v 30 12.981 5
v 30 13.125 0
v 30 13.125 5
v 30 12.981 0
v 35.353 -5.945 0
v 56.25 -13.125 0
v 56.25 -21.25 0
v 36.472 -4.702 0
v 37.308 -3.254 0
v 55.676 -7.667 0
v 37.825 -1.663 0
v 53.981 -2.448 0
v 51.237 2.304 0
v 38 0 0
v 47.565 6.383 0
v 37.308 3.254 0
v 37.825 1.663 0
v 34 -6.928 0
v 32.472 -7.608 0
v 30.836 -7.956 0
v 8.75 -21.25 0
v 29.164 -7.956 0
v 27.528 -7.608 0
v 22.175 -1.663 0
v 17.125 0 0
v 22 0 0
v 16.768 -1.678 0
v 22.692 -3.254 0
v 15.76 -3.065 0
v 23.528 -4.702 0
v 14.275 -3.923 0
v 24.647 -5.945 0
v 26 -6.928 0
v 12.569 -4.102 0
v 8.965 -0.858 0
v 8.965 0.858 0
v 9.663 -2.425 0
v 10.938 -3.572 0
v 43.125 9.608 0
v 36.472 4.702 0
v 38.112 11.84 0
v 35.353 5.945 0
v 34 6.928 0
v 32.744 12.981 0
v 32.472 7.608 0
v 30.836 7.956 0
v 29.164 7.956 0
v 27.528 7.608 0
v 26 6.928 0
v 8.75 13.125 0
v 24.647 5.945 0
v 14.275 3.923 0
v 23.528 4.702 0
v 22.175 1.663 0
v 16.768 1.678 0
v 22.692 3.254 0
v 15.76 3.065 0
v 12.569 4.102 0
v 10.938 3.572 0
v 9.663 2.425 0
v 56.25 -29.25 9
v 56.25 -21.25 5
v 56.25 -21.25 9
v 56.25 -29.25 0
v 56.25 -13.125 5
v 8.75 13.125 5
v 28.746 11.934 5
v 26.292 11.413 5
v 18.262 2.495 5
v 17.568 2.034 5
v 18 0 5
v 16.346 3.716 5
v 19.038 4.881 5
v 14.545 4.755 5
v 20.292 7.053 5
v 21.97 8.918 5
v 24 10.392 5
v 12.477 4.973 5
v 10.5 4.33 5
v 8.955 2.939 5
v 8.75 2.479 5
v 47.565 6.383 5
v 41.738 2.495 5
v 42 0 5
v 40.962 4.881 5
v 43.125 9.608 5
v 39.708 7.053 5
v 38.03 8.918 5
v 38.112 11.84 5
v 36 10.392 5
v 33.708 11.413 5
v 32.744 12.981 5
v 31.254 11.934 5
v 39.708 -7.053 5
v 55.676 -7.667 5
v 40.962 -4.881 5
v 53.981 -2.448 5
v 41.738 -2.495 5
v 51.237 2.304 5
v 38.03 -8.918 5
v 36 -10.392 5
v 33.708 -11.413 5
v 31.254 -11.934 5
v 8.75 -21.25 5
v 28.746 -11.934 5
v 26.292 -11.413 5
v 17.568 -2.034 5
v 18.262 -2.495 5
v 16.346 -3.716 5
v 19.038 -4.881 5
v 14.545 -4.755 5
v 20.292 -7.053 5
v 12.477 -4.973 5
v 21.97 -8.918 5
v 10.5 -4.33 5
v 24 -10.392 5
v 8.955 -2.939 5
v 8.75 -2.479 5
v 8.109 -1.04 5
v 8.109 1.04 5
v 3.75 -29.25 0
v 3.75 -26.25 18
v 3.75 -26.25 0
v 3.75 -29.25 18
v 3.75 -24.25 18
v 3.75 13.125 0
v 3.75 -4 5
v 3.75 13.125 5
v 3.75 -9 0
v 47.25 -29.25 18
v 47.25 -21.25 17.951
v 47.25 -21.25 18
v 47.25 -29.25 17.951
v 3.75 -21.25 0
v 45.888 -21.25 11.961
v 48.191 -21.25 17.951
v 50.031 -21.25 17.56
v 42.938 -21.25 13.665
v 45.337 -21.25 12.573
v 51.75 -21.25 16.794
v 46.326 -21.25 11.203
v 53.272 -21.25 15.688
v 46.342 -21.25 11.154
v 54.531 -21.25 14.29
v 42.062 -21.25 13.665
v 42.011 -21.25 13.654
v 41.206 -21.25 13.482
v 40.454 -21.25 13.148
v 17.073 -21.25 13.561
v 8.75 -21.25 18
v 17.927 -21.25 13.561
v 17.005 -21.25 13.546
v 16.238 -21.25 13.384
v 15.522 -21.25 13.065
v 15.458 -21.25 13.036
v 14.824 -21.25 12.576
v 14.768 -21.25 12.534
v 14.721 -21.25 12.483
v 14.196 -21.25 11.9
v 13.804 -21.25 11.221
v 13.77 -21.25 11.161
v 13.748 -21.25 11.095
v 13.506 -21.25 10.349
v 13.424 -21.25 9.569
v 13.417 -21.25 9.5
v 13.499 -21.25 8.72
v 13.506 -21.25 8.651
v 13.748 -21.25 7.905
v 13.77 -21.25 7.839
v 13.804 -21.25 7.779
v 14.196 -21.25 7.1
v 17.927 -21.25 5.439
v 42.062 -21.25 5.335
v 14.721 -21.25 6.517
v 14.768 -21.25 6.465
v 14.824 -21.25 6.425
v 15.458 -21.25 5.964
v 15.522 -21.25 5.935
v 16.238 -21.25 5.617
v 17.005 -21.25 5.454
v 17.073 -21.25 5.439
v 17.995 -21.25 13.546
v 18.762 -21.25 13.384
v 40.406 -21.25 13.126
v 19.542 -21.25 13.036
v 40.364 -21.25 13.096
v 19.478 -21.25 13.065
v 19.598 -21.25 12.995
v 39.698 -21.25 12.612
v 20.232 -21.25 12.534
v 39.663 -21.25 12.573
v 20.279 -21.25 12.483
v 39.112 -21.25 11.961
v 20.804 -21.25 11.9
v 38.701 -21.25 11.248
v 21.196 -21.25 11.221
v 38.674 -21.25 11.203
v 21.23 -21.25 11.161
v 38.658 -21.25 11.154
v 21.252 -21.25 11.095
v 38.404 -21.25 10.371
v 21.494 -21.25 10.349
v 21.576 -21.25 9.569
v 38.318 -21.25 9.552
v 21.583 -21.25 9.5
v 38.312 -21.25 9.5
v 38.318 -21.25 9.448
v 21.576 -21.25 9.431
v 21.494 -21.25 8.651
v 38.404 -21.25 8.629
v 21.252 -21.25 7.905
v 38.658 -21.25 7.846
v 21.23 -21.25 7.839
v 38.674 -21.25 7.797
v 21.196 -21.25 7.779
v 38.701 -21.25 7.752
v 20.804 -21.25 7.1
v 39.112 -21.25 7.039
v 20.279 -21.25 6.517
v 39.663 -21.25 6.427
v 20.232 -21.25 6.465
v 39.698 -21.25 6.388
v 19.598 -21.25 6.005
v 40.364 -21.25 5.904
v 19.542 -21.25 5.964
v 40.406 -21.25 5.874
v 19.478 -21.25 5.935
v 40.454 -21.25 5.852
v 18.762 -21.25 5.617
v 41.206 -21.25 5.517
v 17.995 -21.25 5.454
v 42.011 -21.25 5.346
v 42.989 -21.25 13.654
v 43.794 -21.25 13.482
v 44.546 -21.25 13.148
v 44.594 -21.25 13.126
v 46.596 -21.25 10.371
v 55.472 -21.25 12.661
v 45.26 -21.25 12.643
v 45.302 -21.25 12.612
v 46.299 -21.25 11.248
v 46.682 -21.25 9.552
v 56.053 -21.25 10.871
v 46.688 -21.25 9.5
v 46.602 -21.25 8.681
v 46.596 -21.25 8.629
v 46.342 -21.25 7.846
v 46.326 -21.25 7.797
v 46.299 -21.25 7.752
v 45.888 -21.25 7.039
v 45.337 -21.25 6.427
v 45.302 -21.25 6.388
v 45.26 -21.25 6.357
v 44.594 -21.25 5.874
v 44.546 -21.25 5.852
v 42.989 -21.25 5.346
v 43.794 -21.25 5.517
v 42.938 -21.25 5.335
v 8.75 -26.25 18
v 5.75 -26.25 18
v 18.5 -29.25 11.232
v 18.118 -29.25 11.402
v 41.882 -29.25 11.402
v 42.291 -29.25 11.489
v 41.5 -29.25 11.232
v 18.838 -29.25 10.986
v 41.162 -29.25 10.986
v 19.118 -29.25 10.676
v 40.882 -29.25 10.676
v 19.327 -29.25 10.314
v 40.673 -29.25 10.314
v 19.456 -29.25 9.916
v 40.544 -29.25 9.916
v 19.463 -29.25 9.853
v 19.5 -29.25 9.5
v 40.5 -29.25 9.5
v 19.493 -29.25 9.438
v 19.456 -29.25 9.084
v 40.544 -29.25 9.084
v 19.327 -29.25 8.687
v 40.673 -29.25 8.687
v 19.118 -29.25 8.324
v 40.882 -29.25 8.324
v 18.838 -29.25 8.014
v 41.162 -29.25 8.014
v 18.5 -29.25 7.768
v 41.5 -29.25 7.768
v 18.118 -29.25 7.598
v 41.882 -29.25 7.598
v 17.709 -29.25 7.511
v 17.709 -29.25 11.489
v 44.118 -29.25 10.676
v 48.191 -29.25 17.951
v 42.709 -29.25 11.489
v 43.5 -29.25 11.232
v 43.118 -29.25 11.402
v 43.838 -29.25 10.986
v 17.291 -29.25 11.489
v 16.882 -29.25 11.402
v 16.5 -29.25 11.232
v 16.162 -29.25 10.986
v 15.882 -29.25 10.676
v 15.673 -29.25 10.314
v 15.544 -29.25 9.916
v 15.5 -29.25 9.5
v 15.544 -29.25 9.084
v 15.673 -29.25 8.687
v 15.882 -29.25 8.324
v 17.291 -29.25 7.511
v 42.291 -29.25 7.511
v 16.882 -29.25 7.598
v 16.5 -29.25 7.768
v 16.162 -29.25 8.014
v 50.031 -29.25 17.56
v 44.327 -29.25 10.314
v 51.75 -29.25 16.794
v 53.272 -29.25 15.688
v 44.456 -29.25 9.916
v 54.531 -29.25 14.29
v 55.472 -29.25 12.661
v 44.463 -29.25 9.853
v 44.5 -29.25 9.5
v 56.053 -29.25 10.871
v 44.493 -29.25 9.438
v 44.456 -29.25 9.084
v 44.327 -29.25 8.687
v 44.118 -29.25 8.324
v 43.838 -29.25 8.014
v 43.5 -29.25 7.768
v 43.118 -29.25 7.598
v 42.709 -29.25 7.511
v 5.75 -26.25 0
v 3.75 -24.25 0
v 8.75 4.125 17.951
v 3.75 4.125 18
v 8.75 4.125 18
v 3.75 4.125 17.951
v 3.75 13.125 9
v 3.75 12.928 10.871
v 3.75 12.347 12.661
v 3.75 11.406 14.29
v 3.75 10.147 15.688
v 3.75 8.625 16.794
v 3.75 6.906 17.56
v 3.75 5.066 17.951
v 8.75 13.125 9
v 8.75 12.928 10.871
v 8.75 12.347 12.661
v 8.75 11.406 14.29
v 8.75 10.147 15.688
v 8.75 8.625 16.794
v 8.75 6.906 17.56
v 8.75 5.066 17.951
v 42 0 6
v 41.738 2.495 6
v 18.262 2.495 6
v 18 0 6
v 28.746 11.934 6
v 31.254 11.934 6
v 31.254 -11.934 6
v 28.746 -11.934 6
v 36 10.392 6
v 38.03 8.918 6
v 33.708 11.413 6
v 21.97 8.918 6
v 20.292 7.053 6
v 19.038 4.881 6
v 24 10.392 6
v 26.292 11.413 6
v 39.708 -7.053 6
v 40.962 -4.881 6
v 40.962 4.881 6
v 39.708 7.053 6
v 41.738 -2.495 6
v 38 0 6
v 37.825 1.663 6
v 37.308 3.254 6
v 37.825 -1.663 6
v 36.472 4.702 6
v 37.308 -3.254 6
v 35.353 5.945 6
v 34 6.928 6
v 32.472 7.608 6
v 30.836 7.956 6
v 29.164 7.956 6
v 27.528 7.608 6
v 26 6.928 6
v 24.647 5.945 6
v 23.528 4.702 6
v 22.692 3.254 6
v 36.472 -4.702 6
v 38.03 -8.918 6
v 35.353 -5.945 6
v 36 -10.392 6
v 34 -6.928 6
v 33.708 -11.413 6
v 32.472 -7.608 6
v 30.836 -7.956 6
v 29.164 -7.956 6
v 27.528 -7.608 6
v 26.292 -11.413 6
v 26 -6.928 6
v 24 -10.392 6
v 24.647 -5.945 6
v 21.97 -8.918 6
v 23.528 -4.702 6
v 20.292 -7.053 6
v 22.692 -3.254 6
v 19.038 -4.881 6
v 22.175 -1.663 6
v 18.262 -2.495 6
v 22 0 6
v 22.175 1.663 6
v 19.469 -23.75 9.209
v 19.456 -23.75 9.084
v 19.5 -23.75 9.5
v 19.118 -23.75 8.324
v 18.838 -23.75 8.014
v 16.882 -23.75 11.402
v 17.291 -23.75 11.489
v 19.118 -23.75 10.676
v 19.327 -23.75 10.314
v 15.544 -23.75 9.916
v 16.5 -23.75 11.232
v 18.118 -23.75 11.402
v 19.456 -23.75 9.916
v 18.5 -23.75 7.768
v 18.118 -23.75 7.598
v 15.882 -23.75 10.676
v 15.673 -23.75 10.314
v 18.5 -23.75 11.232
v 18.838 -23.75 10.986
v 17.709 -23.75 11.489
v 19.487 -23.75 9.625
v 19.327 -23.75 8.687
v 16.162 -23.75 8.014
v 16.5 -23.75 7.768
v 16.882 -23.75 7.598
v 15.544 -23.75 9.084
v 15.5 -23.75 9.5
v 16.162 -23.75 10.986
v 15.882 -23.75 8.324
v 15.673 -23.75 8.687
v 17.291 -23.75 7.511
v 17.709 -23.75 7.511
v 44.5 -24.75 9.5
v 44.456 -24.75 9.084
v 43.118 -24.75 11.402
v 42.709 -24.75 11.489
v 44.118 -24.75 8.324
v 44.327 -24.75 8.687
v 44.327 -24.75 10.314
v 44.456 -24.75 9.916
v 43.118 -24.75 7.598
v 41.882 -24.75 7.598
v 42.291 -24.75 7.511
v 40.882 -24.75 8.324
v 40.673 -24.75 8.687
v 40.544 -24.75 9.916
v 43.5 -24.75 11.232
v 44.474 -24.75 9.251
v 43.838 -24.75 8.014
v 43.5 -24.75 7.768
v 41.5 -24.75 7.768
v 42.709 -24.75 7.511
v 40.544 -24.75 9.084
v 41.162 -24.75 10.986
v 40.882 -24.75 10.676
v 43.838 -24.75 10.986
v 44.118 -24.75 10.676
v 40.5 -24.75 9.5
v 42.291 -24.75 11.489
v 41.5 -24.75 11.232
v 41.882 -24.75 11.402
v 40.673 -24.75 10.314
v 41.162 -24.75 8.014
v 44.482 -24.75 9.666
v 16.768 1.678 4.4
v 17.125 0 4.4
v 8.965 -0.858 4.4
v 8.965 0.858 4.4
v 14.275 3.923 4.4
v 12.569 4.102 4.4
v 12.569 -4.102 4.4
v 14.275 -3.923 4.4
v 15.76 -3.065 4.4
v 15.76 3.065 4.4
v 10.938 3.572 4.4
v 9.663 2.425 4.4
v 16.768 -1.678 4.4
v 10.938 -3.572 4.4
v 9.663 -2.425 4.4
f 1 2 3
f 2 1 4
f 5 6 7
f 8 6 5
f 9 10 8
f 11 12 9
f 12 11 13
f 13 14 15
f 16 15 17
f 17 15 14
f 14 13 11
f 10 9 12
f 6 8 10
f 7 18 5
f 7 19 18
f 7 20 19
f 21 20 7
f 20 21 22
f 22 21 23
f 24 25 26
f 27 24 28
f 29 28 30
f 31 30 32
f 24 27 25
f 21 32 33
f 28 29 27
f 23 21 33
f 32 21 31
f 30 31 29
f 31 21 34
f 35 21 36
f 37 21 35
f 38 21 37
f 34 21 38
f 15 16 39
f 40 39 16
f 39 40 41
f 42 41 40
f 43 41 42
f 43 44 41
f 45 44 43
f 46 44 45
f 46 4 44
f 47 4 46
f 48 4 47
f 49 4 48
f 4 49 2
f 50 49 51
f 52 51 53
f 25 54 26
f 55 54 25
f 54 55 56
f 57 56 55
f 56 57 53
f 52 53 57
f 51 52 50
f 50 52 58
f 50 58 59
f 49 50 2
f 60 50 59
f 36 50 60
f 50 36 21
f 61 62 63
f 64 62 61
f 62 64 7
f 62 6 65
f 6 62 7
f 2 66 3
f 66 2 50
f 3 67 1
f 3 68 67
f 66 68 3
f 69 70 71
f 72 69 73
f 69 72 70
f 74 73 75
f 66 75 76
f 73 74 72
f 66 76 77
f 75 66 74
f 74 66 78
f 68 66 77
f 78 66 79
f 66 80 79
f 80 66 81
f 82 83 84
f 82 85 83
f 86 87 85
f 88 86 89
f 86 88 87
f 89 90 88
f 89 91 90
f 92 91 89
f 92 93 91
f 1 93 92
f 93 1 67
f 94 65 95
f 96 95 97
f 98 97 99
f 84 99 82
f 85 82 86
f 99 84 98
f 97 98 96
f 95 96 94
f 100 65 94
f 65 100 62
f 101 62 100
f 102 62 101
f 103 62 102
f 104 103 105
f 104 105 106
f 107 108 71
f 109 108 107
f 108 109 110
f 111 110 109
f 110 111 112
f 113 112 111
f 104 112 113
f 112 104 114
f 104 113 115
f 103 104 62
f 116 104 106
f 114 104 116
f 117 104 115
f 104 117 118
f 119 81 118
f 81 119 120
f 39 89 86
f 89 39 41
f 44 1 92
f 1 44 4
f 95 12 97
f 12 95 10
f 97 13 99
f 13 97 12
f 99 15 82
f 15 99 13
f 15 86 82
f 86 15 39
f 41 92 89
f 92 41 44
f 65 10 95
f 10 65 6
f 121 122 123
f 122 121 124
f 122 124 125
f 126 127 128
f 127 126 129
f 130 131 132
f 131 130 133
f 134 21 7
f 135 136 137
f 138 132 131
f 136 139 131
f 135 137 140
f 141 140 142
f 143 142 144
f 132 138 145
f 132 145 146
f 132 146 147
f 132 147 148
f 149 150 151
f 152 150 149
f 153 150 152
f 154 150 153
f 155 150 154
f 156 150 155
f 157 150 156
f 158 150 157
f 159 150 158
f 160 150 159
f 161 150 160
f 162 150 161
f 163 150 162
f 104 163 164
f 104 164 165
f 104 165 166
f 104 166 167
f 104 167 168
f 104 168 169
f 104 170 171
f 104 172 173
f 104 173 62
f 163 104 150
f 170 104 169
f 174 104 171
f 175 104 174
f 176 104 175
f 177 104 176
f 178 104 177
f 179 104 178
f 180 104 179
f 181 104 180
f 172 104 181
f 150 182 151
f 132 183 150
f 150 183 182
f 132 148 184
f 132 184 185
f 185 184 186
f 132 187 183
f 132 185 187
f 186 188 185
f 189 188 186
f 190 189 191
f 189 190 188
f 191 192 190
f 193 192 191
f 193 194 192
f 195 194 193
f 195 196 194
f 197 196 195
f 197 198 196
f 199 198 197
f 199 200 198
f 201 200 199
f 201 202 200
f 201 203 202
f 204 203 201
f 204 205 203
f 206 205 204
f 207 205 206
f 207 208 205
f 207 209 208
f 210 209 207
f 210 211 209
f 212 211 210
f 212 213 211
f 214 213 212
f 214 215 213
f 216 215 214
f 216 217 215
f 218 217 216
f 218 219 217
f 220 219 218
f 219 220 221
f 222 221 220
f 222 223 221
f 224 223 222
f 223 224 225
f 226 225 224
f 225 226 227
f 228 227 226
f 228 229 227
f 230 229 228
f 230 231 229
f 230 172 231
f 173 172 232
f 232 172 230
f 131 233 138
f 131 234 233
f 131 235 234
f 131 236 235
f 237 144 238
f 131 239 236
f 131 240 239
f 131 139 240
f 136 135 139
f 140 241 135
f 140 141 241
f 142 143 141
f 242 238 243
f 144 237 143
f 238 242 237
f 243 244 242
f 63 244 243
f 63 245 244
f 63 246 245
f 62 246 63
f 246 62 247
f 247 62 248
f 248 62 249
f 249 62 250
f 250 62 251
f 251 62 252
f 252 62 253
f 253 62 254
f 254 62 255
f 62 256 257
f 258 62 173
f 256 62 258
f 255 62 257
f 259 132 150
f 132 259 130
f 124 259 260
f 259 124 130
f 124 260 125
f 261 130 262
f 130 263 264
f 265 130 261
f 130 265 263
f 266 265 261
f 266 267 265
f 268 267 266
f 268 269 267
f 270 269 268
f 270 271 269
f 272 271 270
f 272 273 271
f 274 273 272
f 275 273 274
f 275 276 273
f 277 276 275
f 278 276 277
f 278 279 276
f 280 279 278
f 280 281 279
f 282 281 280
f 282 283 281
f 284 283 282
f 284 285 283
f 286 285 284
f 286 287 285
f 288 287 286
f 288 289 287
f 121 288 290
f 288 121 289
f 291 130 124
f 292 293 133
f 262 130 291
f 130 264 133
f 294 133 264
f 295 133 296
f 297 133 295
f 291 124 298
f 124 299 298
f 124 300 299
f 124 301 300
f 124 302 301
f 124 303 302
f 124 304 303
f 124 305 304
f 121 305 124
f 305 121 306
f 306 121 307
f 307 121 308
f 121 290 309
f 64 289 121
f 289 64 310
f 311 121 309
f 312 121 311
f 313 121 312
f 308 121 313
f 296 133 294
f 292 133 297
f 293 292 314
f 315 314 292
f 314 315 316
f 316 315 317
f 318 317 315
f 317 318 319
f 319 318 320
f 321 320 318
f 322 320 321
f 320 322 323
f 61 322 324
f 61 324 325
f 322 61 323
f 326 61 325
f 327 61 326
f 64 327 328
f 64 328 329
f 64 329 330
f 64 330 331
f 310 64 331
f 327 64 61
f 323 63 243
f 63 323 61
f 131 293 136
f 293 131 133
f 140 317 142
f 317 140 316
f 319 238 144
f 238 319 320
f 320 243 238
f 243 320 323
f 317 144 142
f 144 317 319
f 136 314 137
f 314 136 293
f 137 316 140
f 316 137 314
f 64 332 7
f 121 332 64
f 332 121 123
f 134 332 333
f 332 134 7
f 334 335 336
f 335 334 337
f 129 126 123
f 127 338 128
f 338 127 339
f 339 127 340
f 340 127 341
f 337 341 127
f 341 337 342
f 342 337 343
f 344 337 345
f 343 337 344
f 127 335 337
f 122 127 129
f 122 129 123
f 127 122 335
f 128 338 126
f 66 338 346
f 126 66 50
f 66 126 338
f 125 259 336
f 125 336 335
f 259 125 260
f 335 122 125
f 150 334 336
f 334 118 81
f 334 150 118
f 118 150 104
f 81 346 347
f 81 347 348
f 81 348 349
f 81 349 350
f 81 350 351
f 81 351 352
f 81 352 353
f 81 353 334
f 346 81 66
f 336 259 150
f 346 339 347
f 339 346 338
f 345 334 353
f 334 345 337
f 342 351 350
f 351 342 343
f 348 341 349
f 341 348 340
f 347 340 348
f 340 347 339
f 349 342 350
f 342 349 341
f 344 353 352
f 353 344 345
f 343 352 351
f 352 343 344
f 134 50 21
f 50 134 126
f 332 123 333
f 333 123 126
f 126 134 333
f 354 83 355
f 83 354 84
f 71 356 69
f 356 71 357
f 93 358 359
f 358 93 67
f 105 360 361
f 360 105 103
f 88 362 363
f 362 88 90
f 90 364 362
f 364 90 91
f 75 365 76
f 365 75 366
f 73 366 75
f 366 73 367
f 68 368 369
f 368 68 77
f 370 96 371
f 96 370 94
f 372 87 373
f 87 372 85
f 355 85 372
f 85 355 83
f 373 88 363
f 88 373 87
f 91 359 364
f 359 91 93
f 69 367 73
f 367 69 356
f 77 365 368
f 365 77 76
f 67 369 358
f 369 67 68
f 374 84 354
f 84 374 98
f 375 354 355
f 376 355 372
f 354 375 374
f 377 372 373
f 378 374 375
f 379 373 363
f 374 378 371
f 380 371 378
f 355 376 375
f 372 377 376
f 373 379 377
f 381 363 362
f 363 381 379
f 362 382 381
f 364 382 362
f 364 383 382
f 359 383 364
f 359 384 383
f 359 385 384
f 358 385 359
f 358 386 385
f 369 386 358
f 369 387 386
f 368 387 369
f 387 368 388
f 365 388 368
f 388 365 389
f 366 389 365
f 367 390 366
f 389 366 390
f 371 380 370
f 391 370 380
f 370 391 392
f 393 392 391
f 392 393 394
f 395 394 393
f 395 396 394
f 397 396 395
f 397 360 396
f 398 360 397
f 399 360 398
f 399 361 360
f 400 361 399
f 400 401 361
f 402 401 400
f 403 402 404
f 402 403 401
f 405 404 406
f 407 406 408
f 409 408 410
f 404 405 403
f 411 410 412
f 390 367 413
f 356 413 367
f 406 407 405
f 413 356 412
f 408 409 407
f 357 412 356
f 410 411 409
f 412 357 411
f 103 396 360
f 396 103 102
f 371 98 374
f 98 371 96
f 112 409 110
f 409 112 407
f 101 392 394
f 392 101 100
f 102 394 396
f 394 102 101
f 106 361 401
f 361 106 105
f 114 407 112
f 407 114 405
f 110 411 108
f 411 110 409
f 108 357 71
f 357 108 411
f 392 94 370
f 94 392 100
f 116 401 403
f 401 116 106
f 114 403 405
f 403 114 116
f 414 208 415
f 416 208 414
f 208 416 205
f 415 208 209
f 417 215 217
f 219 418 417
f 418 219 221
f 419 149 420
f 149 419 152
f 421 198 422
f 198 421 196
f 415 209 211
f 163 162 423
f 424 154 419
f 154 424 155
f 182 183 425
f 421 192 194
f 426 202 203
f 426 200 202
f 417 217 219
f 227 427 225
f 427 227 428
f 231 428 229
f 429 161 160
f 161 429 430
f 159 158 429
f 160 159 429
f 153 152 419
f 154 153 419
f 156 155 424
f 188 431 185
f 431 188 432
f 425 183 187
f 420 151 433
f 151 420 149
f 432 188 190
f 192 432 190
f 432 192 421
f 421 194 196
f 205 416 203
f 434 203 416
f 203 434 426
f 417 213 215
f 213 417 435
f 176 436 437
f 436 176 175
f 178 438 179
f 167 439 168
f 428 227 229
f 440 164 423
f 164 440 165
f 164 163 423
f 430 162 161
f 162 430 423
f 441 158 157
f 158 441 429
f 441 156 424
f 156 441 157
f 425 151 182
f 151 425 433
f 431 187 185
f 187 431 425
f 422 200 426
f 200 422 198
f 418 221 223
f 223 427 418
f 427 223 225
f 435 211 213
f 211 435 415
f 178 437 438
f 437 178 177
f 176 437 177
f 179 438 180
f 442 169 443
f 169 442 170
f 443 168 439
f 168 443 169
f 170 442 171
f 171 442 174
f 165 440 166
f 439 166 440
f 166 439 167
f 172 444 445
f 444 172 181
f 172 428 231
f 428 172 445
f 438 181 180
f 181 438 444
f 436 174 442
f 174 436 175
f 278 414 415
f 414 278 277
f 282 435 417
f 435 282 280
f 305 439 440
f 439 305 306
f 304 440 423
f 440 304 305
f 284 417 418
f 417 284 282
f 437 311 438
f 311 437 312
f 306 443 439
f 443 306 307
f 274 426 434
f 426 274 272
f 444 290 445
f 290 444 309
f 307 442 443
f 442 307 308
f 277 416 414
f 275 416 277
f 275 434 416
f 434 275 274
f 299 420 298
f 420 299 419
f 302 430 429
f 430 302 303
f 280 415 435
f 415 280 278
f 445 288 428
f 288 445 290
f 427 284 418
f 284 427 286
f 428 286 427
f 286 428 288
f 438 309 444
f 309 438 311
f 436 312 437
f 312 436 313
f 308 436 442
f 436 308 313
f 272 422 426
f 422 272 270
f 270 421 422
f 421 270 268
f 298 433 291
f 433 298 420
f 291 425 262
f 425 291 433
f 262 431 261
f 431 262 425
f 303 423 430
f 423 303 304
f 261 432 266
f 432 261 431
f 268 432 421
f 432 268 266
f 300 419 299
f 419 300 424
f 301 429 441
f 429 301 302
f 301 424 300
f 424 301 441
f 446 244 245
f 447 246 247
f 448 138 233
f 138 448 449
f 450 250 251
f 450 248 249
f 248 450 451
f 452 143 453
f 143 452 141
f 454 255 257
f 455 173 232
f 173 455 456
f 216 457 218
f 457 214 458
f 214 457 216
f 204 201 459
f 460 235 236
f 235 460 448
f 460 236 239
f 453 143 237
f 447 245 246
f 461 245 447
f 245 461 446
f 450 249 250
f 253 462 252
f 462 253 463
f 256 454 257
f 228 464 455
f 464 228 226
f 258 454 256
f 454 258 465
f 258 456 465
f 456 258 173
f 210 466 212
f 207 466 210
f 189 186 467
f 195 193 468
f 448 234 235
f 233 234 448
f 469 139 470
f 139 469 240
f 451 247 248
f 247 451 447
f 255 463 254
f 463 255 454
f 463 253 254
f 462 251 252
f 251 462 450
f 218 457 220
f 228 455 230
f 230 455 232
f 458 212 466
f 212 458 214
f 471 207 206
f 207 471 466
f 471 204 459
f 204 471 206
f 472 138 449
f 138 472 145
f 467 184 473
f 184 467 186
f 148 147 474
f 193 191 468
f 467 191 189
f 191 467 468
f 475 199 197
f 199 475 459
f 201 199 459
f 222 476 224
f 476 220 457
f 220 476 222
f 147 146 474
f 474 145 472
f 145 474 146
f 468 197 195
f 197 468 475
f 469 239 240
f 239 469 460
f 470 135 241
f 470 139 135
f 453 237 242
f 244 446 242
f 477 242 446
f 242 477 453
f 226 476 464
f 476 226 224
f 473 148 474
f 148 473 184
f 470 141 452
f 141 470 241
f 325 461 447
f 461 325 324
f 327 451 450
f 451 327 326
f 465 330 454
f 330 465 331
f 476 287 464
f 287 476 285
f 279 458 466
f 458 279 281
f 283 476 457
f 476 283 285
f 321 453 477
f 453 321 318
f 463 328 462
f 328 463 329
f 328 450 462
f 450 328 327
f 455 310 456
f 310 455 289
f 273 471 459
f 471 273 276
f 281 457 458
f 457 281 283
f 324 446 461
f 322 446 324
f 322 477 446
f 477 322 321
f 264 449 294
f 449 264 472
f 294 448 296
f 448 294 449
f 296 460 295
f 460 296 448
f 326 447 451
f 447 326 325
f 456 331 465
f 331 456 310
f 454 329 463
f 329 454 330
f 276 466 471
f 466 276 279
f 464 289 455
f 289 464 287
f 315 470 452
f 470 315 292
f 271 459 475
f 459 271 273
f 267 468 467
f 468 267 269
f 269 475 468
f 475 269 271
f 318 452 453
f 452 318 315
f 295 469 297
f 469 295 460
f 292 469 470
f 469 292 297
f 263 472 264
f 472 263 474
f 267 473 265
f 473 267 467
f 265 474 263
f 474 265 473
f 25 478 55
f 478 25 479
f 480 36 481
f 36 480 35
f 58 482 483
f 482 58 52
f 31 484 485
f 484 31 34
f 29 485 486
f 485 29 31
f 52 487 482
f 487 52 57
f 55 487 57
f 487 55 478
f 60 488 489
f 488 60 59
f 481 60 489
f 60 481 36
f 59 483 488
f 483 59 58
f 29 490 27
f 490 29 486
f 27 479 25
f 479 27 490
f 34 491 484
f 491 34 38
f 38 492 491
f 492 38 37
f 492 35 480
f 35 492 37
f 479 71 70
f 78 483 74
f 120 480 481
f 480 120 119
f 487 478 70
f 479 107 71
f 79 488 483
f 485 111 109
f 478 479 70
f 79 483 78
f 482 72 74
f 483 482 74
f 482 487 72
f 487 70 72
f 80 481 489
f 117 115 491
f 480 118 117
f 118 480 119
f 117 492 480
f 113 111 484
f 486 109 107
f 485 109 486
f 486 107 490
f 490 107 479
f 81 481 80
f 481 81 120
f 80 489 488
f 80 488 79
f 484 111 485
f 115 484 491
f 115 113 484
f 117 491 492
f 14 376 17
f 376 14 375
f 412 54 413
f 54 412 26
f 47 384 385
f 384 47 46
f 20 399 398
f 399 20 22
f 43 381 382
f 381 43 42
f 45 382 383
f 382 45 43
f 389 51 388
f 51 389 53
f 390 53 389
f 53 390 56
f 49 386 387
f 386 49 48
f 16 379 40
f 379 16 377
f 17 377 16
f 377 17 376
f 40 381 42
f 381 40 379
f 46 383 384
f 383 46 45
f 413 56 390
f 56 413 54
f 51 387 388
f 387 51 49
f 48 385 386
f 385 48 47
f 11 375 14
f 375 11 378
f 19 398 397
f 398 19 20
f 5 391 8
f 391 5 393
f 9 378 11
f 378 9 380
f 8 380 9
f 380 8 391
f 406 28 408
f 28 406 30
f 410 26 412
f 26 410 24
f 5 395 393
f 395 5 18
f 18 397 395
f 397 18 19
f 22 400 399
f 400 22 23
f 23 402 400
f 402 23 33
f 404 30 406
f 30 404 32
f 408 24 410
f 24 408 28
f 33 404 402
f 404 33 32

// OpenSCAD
$fn=100;
r_body = 21;
r_hole = 1.75;
r_ear = 3.75;
plate_width = 52.5;
plate_length = 52.5;
plate_thickness = 5;
plate_hight = 18;

r_screw=2; // Wood screw
r_screw_head=4.5;

module mount(){
    difference(){
        translate([-plate_width/2, -plate_length/2, 0]) cube([plate_width, plate_length*3/4, plate_thickness]);
        translate([plate_width/4, -plate_length/2, 0]) difference(){
            translate([-plate_width/4, plate_length/4, 0]) cube([plate_width/2, plate_length/2, plate_thickness]);
            translate([-plate_width/4, plate_length/4, 0]) cylinder(h = plate_thickness, r = plate_width/2, $fn=30);
        }
    }
    
    translate([0, 0, -1]) cylinder(h = 5, r = 12, $fn=30); // 625 bearing hold
    
    translate([0, -plate_length/2-3, -plate_hight/2+plate_thickness]) rotate([-90, 0, 0]) difference(){
        translate([-plate_width/2, -plate_hight/2, 0]) cube([plate_width, plate_hight, plate_thickness+3]);
        translate([plate_width/2-plate_hight/2, 0, 0]){
            difference(){
                cube([plate_hight/2, plate_hight/2, plate_thickness+3]);
                cylinder(h = plate_thickness+3, r = plate_hight/2, $fn=30);
            }
        }
    }
    
    translate([-plate_width/2+plate_thickness, 0, -plate_hight/2+plate_thickness]) 
    rotate([-90, 0, 90]) difference(){
        translate([-plate_length/2, -plate_hight/2, 0]) cube([plate_length*3/4, plate_hight, plate_thickness]);
        translate([plate_length/4-plate_hight/2, 0, 0]){
            difference(){
                cube([plate_hight/2, plate_hight/2, plate_thickness]);
                cylinder(h = plate_thickness, r = plate_hight/2, $fn=30);
            }
        }
    }
}
    
//mirror([1, 0, 0]) 

module right_mount() translate([30, 0, -plate_thickness]) difference(){
    mount();
    translate([-12.5, -plate_length/2+plate_thickness+0.5, 2-plate_hight/2+plate_thickness/2]) rotate([90, 0, 0]) cylinder(h = 3, r1=r_screw_head, r2=r_screw, $fn=30);
    translate([-12.5, -plate_length/2+plate_thickness+0.5, 2-plate_hight/2+plate_thickness/2]) rotate([90, 0, 0]) cylinder(h = 10, r=r_screw, $fn=30);
    translate([12.5, -plate_length/2+plate_thickness+0.5, 2-plate_hight/2+plate_thickness/2]) rotate([90, 0, 0]) cylinder(h = 4, r1=r_screw_head, r2=r_screw, $fn=30);
    translate([12.5, -plate_length/2+plate_thickness+0.5, 2-plate_hight/2+plate_thickness/2]) rotate([90, 0, 0]) cylinder(h = 10, r=r_screw, $fn=30);
    
    translate([-17, 0, -1]) cylinder(h = 50, r=4.125, $fn=15);
    translate([-17, 0, 0]) cylinder(h = 0.6, r1=5, r2=4.125, $fn=15);
    
    translate([0, 0, -2]) cylinder(h = 10, r=8, $fn=30);
    
}

mirror([0, 0, 1]){
    right_mount();
    //mirror([1, 0, 0]) right_mount();
}
